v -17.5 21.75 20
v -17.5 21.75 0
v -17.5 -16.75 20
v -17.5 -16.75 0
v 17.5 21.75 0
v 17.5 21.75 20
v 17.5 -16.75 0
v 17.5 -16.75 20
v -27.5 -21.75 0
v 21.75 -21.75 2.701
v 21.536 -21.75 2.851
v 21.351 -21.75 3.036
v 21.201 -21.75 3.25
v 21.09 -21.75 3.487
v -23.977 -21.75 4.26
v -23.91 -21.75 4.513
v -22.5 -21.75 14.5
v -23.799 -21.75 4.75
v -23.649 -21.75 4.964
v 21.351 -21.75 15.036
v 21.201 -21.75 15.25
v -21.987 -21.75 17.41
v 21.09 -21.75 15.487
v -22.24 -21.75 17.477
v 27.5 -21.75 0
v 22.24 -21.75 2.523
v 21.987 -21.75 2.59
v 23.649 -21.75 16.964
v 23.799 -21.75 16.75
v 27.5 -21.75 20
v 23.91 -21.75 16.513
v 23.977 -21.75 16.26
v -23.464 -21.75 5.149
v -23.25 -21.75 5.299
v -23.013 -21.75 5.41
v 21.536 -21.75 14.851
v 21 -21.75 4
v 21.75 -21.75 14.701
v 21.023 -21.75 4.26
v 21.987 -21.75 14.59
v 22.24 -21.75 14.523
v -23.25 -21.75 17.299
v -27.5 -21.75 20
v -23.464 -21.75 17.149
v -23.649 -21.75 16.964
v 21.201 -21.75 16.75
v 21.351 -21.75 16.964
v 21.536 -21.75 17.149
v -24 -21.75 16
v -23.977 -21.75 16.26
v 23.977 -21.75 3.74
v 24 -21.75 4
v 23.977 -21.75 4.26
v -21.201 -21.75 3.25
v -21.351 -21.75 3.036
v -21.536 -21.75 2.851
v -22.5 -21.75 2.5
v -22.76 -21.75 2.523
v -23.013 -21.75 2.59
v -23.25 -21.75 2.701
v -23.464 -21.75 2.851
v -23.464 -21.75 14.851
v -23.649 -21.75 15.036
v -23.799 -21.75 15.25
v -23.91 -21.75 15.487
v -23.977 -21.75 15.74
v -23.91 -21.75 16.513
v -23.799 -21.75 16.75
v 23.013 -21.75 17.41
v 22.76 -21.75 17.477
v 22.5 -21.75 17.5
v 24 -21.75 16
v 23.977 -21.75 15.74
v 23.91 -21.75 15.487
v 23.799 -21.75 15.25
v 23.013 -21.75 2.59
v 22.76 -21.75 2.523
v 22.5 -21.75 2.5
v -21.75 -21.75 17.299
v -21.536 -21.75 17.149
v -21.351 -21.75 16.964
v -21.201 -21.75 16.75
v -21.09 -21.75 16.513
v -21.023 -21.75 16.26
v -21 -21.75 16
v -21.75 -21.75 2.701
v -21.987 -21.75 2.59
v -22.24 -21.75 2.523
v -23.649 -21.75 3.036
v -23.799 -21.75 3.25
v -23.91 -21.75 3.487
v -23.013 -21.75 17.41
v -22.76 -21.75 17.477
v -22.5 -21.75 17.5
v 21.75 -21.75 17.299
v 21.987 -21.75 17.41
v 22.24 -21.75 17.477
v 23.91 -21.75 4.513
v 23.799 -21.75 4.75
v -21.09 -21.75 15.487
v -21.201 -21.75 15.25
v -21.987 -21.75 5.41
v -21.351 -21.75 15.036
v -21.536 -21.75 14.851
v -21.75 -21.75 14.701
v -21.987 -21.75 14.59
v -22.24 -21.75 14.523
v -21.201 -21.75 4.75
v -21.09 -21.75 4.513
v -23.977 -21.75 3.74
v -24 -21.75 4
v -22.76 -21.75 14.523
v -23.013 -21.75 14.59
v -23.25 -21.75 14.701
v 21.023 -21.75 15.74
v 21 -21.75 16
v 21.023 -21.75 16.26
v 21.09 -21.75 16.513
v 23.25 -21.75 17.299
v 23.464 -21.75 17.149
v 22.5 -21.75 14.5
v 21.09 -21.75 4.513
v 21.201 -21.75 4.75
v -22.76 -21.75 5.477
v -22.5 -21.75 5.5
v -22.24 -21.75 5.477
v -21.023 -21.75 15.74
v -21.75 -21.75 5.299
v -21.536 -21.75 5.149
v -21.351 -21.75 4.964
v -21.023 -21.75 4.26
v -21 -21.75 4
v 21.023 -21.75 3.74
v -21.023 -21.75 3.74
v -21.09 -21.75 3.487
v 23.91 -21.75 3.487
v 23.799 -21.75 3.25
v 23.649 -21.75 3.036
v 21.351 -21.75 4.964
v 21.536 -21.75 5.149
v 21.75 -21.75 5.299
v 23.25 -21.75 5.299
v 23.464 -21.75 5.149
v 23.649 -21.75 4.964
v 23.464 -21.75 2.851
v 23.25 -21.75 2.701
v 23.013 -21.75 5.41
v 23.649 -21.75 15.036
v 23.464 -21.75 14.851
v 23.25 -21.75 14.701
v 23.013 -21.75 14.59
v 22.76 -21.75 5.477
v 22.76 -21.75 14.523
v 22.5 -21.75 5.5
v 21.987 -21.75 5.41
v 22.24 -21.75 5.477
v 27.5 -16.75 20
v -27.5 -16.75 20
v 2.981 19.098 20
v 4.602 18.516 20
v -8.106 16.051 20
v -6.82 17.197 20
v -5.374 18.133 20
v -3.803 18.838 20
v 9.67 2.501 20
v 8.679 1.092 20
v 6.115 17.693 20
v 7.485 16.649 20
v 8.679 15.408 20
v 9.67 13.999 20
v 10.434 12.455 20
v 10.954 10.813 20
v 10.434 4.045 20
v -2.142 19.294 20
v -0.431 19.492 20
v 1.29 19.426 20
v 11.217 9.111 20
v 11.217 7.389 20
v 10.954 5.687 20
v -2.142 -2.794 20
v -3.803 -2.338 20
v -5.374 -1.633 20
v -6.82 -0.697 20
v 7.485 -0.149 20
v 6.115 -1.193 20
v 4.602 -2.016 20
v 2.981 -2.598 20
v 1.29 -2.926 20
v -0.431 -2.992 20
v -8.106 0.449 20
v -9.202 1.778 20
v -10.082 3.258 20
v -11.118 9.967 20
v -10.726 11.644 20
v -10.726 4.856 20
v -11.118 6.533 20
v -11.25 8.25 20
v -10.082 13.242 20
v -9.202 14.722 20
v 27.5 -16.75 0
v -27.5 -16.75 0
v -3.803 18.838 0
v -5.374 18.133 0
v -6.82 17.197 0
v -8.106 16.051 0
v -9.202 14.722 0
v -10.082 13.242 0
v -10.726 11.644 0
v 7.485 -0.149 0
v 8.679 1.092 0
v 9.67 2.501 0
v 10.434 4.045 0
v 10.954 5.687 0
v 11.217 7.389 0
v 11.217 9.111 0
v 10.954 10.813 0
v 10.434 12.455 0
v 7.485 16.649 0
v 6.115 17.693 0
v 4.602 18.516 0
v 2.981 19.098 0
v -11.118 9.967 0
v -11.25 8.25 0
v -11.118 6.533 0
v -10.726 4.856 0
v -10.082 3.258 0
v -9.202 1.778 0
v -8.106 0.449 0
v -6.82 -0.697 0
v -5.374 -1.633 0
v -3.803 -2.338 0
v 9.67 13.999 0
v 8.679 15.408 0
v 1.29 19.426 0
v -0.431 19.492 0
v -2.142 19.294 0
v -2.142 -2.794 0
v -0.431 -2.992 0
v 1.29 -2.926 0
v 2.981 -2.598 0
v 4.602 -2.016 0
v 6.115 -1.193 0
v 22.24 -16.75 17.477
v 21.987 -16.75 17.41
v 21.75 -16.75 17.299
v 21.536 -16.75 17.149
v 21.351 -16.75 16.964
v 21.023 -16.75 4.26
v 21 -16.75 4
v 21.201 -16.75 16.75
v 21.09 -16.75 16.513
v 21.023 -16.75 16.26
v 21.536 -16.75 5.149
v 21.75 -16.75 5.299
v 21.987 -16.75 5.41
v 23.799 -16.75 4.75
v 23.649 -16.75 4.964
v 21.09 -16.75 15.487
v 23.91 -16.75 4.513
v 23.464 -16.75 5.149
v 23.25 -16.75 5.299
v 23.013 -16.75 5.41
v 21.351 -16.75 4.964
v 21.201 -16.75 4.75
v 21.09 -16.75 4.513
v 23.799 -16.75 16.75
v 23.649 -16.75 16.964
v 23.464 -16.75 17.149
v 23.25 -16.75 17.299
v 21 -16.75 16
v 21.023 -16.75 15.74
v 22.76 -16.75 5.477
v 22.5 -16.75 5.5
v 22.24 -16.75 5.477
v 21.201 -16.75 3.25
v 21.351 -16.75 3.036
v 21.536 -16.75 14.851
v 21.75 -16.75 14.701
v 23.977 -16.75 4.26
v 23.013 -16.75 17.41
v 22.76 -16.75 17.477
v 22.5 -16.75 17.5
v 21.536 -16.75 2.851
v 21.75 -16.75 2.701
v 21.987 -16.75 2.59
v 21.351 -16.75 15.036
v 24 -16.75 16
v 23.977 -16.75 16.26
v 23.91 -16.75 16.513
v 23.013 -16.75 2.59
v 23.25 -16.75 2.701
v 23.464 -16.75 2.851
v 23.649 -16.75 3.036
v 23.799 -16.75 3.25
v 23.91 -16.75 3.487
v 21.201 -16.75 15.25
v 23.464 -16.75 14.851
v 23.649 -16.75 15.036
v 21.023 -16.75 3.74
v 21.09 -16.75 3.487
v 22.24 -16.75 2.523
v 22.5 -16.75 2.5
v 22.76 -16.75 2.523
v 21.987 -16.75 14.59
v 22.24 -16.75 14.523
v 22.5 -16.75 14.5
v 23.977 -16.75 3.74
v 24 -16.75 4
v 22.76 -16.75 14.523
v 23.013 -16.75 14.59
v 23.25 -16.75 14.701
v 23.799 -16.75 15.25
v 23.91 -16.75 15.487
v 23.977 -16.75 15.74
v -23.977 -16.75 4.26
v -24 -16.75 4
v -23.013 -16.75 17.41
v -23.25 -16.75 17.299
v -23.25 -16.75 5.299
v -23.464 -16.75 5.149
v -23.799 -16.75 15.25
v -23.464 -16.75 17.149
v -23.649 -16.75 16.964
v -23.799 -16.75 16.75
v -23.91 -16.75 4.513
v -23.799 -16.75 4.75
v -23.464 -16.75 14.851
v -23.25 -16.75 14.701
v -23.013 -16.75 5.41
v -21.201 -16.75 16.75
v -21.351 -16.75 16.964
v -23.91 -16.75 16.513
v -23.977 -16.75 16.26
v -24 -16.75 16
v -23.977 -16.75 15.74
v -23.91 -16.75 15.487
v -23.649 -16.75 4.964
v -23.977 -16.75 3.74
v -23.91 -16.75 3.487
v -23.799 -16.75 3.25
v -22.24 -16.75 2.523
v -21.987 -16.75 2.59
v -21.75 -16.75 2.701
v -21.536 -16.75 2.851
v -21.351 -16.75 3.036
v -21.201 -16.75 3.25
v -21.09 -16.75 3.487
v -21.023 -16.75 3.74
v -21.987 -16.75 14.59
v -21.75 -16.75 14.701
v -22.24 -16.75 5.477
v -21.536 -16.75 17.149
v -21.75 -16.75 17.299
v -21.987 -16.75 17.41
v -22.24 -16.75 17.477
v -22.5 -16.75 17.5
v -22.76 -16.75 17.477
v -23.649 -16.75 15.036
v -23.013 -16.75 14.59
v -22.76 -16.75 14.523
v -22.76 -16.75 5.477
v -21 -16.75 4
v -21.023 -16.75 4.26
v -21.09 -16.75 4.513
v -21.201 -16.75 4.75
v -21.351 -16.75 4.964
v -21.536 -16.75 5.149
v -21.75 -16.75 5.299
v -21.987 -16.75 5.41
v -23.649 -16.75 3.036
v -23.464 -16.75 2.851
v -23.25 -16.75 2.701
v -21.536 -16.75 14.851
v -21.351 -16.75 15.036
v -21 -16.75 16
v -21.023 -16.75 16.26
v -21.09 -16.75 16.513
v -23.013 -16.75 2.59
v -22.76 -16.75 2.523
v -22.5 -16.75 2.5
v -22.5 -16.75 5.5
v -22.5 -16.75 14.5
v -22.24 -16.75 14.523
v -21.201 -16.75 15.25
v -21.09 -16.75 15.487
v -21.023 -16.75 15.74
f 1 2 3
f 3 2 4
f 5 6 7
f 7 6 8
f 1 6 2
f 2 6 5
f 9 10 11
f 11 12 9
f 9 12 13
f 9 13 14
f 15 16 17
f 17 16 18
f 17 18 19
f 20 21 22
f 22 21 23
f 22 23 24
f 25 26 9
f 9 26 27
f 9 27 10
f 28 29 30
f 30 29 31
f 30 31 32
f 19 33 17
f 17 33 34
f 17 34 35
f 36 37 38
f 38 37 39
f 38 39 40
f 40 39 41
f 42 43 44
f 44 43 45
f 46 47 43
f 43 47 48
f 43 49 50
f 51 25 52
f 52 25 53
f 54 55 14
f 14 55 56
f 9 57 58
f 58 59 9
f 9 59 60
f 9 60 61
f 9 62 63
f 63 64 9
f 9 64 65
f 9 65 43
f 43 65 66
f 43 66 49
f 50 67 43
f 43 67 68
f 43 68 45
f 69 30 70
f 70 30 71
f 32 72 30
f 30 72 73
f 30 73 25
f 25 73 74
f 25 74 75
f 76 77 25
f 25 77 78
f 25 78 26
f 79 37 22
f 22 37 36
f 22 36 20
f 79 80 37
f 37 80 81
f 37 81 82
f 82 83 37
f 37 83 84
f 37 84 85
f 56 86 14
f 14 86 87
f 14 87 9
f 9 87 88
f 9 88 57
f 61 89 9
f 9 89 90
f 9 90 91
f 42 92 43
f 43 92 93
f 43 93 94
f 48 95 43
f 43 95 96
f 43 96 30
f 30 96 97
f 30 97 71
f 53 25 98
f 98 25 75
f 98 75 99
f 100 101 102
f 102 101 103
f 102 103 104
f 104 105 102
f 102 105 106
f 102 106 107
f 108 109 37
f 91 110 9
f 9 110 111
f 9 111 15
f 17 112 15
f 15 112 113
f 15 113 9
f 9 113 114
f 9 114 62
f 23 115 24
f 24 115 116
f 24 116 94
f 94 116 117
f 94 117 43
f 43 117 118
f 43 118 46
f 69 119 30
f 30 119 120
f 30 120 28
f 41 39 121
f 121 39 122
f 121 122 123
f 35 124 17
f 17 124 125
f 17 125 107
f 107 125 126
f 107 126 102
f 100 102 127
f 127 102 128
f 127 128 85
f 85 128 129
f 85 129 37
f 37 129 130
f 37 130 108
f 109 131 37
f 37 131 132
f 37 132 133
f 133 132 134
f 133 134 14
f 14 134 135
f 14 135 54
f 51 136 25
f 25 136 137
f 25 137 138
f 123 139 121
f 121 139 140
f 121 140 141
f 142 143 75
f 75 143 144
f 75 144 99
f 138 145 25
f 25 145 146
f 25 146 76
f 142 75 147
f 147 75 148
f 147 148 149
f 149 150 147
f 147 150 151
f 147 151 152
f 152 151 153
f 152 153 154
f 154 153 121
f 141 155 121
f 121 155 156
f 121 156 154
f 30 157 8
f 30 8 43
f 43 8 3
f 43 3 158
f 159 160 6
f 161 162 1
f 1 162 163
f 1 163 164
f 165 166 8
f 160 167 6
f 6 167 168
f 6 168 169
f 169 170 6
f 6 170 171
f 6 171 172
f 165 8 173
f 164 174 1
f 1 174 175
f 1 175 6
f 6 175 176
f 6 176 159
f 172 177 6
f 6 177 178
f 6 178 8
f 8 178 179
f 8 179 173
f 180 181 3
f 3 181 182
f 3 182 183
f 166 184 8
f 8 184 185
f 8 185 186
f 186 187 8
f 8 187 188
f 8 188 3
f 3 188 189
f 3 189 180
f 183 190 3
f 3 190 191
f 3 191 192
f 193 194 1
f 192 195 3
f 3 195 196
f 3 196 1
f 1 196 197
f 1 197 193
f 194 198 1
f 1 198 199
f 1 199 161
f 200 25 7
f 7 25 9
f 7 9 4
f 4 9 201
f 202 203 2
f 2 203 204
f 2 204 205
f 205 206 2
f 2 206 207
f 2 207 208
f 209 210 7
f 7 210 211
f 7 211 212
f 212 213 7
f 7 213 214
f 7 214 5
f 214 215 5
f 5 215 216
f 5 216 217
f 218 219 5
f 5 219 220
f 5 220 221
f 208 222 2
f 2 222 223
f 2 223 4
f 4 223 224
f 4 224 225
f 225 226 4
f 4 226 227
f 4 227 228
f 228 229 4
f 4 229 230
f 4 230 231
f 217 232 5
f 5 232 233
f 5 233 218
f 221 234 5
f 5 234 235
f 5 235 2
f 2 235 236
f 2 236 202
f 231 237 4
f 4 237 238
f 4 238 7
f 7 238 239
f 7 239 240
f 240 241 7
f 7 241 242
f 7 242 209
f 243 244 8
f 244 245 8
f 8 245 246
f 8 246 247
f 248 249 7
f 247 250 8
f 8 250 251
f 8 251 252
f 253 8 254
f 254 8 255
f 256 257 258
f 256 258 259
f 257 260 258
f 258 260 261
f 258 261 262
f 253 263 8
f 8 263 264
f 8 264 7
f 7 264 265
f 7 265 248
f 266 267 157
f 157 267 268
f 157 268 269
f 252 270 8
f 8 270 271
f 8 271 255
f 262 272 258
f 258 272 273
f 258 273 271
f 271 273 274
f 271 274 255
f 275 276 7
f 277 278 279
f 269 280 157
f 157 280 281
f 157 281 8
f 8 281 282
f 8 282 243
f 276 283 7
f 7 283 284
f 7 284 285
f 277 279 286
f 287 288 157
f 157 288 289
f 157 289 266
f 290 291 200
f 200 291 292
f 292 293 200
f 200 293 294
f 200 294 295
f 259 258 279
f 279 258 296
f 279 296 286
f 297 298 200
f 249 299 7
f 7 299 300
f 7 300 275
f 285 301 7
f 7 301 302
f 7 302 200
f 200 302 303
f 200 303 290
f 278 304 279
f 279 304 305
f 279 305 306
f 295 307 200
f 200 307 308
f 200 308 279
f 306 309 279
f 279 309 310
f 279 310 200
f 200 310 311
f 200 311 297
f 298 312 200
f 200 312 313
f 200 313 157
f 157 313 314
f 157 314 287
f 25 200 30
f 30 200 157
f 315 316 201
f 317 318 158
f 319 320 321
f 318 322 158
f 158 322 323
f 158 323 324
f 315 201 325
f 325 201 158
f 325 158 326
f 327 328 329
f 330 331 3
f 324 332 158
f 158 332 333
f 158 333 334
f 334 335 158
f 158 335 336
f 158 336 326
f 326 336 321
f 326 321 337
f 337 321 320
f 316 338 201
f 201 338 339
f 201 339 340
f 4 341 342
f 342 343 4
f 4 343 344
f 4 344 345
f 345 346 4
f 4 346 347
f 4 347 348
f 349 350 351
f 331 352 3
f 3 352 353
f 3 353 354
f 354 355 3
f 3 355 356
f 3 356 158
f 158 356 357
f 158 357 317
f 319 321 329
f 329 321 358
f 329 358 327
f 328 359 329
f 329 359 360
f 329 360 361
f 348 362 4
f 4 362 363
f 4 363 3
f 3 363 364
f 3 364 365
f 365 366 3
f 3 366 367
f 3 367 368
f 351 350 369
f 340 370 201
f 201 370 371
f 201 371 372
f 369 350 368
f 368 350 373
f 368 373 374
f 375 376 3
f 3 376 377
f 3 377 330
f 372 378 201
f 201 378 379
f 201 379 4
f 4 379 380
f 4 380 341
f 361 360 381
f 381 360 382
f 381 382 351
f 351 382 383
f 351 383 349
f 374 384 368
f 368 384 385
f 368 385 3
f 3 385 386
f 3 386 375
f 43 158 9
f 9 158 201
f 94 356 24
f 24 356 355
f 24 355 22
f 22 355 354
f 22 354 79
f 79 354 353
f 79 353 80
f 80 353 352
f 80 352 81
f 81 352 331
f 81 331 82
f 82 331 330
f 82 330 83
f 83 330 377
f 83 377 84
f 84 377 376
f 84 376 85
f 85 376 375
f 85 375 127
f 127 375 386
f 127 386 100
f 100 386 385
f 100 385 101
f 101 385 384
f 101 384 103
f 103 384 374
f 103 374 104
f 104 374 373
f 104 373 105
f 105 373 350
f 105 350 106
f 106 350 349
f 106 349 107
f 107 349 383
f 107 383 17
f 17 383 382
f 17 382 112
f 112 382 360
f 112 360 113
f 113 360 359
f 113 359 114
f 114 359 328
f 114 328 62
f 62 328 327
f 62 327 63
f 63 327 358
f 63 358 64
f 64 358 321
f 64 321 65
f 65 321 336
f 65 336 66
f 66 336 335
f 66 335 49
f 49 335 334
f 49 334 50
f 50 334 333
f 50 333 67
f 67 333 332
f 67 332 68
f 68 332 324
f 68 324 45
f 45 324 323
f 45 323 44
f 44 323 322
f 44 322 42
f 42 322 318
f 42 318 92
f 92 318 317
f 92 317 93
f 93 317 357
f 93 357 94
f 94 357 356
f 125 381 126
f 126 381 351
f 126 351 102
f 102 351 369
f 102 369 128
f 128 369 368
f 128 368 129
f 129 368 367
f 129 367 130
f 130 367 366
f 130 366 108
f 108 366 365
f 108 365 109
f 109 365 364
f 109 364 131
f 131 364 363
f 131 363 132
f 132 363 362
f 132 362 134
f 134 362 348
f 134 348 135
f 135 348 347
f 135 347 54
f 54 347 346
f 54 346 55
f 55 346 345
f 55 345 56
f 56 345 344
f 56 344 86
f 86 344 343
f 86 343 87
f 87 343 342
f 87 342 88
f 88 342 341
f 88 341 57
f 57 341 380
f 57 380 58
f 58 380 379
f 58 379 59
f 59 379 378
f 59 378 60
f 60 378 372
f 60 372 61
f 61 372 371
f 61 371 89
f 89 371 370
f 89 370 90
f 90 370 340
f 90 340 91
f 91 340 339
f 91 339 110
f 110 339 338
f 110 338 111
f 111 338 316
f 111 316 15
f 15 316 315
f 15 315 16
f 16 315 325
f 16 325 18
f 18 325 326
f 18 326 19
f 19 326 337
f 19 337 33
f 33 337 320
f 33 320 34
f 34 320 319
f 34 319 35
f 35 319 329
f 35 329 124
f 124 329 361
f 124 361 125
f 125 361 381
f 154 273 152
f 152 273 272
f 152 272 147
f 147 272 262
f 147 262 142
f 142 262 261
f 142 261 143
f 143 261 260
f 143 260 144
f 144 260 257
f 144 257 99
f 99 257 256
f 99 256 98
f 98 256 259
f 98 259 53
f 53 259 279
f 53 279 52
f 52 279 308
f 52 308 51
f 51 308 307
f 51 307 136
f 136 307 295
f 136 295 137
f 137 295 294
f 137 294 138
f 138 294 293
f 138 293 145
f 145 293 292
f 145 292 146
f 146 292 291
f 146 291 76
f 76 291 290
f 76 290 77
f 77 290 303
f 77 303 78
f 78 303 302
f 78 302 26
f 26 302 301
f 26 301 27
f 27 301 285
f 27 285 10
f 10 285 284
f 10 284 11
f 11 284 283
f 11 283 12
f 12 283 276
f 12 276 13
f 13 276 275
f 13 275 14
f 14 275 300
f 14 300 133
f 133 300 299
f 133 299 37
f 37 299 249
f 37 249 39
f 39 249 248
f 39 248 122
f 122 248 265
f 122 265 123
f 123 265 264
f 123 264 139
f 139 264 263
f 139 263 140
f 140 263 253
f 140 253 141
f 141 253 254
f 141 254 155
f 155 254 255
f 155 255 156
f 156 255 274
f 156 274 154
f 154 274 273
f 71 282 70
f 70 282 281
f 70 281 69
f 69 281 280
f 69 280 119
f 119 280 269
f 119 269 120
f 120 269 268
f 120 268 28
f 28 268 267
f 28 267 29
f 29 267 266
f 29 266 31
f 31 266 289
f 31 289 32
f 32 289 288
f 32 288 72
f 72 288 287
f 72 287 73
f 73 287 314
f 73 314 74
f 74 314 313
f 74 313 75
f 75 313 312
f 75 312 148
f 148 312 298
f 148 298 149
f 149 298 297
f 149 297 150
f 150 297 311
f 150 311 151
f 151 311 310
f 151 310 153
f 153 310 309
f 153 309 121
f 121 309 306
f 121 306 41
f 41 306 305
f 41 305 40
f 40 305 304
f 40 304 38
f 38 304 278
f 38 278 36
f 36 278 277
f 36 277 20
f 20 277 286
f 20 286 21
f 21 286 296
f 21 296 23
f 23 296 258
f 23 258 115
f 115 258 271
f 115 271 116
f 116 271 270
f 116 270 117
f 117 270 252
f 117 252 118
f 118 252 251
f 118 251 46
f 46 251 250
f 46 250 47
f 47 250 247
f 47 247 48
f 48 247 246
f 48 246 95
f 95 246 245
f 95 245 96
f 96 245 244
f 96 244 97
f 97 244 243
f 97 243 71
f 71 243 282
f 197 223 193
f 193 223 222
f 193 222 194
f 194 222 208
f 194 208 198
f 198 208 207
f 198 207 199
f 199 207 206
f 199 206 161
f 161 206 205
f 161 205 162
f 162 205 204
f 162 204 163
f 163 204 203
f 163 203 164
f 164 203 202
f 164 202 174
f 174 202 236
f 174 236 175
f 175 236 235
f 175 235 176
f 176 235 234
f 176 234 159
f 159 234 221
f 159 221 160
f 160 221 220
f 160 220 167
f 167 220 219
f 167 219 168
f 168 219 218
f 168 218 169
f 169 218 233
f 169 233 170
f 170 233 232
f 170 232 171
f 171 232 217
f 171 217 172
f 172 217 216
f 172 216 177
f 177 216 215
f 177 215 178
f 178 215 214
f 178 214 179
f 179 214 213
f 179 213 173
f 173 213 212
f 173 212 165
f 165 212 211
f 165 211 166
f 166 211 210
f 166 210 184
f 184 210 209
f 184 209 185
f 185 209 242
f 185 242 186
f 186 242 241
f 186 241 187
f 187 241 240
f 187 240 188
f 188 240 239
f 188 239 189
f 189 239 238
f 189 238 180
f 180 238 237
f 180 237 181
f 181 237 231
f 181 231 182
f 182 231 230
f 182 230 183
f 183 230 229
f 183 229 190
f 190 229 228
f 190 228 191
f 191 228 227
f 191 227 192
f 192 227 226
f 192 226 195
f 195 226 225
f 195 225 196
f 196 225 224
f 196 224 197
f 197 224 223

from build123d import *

# Parameters (mm, degrees)
SKETCH_1_W          = 35
SKETCH_1_H          = 43.5
EXTRUDE_1_DEPTH     = 20
SKETCH_2_W          = 20
SKETCH_2_H          = 5
EXTRUDE_2_DEPTH     = 10
SKETCH_3_W          = 20
SKETCH_3_H          = 5
EXTRUDE_3_DEPTH     = 10
SKETCH_4_R          = 1.5
CUT_EXTRUDE_2_DEPTH = 5
SKETCH_5_R          = 11.25
CUT_EXTRUDE_4_DEPTH = 20


with BuildPart() as part:
    # Эскиз1 → Бобышка-Вытянуть1 (new body)
    with BuildSketch(Plane.XY):
        Rectangle(SKETCH_1_W, SKETCH_1_H)
    extrude(amount=EXTRUDE_1_DEPTH)

    # Эскиз2 → Бобышка-Вытянуть2 (add)
    with BuildSketch(Plane(origin=(17.5, 0, 0), x_dir=(0, 0, -1), z_dir=(1, 0, 0))):
        with Locations((-10, -19.25)):
            Rectangle(SKETCH_2_W, SKETCH_2_H)
    extrude(amount=EXTRUDE_2_DEPTH)

    # Эскиз3 → Бобышка-Вытянуть3 (add)
    with BuildSketch(Plane.ZY.offset(17.5)):
        with Locations((10, -19.25)):
            Rectangle(SKETCH_3_W, SKETCH_3_H)
    extrude(amount=EXTRUDE_3_DEPTH)

    # Эскиз4 → Вырез-Вытянуть2 (cut)
    with BuildSketch(Plane(origin=(0, -16.75, 0), x_dir=(1, 0, 0), z_dir=(0, 1, 0))):
        with Locations((-22.5, -16)):
            Circle(SKETCH_4_R)
        with Locations((-22.5, -4)):
            Circle(SKETCH_4_R)
        with Locations((22.5, -16)):
            Circle(SKETCH_4_R)
        with Locations((22.5, -4)):
            Circle(SKETCH_4_R)
    extrude(amount=-CUT_EXTRUDE_2_DEPTH, mode=Mode.SUBTRACT)

    # Эскиз5 → Вырез-Вытянуть4 (cut)
    with BuildSketch(Plane(origin=(0, 0, 0), x_dir=(-1, 0, 0), z_dir=(0, 0, -1))):
        with Locations((0, 8.25)):
            Circle(SKETCH_5_R)
    extrude(amount=-CUT_EXTRUDE_4_DEPTH, mode=Mode.SUBTRACT)


solid = part.part
